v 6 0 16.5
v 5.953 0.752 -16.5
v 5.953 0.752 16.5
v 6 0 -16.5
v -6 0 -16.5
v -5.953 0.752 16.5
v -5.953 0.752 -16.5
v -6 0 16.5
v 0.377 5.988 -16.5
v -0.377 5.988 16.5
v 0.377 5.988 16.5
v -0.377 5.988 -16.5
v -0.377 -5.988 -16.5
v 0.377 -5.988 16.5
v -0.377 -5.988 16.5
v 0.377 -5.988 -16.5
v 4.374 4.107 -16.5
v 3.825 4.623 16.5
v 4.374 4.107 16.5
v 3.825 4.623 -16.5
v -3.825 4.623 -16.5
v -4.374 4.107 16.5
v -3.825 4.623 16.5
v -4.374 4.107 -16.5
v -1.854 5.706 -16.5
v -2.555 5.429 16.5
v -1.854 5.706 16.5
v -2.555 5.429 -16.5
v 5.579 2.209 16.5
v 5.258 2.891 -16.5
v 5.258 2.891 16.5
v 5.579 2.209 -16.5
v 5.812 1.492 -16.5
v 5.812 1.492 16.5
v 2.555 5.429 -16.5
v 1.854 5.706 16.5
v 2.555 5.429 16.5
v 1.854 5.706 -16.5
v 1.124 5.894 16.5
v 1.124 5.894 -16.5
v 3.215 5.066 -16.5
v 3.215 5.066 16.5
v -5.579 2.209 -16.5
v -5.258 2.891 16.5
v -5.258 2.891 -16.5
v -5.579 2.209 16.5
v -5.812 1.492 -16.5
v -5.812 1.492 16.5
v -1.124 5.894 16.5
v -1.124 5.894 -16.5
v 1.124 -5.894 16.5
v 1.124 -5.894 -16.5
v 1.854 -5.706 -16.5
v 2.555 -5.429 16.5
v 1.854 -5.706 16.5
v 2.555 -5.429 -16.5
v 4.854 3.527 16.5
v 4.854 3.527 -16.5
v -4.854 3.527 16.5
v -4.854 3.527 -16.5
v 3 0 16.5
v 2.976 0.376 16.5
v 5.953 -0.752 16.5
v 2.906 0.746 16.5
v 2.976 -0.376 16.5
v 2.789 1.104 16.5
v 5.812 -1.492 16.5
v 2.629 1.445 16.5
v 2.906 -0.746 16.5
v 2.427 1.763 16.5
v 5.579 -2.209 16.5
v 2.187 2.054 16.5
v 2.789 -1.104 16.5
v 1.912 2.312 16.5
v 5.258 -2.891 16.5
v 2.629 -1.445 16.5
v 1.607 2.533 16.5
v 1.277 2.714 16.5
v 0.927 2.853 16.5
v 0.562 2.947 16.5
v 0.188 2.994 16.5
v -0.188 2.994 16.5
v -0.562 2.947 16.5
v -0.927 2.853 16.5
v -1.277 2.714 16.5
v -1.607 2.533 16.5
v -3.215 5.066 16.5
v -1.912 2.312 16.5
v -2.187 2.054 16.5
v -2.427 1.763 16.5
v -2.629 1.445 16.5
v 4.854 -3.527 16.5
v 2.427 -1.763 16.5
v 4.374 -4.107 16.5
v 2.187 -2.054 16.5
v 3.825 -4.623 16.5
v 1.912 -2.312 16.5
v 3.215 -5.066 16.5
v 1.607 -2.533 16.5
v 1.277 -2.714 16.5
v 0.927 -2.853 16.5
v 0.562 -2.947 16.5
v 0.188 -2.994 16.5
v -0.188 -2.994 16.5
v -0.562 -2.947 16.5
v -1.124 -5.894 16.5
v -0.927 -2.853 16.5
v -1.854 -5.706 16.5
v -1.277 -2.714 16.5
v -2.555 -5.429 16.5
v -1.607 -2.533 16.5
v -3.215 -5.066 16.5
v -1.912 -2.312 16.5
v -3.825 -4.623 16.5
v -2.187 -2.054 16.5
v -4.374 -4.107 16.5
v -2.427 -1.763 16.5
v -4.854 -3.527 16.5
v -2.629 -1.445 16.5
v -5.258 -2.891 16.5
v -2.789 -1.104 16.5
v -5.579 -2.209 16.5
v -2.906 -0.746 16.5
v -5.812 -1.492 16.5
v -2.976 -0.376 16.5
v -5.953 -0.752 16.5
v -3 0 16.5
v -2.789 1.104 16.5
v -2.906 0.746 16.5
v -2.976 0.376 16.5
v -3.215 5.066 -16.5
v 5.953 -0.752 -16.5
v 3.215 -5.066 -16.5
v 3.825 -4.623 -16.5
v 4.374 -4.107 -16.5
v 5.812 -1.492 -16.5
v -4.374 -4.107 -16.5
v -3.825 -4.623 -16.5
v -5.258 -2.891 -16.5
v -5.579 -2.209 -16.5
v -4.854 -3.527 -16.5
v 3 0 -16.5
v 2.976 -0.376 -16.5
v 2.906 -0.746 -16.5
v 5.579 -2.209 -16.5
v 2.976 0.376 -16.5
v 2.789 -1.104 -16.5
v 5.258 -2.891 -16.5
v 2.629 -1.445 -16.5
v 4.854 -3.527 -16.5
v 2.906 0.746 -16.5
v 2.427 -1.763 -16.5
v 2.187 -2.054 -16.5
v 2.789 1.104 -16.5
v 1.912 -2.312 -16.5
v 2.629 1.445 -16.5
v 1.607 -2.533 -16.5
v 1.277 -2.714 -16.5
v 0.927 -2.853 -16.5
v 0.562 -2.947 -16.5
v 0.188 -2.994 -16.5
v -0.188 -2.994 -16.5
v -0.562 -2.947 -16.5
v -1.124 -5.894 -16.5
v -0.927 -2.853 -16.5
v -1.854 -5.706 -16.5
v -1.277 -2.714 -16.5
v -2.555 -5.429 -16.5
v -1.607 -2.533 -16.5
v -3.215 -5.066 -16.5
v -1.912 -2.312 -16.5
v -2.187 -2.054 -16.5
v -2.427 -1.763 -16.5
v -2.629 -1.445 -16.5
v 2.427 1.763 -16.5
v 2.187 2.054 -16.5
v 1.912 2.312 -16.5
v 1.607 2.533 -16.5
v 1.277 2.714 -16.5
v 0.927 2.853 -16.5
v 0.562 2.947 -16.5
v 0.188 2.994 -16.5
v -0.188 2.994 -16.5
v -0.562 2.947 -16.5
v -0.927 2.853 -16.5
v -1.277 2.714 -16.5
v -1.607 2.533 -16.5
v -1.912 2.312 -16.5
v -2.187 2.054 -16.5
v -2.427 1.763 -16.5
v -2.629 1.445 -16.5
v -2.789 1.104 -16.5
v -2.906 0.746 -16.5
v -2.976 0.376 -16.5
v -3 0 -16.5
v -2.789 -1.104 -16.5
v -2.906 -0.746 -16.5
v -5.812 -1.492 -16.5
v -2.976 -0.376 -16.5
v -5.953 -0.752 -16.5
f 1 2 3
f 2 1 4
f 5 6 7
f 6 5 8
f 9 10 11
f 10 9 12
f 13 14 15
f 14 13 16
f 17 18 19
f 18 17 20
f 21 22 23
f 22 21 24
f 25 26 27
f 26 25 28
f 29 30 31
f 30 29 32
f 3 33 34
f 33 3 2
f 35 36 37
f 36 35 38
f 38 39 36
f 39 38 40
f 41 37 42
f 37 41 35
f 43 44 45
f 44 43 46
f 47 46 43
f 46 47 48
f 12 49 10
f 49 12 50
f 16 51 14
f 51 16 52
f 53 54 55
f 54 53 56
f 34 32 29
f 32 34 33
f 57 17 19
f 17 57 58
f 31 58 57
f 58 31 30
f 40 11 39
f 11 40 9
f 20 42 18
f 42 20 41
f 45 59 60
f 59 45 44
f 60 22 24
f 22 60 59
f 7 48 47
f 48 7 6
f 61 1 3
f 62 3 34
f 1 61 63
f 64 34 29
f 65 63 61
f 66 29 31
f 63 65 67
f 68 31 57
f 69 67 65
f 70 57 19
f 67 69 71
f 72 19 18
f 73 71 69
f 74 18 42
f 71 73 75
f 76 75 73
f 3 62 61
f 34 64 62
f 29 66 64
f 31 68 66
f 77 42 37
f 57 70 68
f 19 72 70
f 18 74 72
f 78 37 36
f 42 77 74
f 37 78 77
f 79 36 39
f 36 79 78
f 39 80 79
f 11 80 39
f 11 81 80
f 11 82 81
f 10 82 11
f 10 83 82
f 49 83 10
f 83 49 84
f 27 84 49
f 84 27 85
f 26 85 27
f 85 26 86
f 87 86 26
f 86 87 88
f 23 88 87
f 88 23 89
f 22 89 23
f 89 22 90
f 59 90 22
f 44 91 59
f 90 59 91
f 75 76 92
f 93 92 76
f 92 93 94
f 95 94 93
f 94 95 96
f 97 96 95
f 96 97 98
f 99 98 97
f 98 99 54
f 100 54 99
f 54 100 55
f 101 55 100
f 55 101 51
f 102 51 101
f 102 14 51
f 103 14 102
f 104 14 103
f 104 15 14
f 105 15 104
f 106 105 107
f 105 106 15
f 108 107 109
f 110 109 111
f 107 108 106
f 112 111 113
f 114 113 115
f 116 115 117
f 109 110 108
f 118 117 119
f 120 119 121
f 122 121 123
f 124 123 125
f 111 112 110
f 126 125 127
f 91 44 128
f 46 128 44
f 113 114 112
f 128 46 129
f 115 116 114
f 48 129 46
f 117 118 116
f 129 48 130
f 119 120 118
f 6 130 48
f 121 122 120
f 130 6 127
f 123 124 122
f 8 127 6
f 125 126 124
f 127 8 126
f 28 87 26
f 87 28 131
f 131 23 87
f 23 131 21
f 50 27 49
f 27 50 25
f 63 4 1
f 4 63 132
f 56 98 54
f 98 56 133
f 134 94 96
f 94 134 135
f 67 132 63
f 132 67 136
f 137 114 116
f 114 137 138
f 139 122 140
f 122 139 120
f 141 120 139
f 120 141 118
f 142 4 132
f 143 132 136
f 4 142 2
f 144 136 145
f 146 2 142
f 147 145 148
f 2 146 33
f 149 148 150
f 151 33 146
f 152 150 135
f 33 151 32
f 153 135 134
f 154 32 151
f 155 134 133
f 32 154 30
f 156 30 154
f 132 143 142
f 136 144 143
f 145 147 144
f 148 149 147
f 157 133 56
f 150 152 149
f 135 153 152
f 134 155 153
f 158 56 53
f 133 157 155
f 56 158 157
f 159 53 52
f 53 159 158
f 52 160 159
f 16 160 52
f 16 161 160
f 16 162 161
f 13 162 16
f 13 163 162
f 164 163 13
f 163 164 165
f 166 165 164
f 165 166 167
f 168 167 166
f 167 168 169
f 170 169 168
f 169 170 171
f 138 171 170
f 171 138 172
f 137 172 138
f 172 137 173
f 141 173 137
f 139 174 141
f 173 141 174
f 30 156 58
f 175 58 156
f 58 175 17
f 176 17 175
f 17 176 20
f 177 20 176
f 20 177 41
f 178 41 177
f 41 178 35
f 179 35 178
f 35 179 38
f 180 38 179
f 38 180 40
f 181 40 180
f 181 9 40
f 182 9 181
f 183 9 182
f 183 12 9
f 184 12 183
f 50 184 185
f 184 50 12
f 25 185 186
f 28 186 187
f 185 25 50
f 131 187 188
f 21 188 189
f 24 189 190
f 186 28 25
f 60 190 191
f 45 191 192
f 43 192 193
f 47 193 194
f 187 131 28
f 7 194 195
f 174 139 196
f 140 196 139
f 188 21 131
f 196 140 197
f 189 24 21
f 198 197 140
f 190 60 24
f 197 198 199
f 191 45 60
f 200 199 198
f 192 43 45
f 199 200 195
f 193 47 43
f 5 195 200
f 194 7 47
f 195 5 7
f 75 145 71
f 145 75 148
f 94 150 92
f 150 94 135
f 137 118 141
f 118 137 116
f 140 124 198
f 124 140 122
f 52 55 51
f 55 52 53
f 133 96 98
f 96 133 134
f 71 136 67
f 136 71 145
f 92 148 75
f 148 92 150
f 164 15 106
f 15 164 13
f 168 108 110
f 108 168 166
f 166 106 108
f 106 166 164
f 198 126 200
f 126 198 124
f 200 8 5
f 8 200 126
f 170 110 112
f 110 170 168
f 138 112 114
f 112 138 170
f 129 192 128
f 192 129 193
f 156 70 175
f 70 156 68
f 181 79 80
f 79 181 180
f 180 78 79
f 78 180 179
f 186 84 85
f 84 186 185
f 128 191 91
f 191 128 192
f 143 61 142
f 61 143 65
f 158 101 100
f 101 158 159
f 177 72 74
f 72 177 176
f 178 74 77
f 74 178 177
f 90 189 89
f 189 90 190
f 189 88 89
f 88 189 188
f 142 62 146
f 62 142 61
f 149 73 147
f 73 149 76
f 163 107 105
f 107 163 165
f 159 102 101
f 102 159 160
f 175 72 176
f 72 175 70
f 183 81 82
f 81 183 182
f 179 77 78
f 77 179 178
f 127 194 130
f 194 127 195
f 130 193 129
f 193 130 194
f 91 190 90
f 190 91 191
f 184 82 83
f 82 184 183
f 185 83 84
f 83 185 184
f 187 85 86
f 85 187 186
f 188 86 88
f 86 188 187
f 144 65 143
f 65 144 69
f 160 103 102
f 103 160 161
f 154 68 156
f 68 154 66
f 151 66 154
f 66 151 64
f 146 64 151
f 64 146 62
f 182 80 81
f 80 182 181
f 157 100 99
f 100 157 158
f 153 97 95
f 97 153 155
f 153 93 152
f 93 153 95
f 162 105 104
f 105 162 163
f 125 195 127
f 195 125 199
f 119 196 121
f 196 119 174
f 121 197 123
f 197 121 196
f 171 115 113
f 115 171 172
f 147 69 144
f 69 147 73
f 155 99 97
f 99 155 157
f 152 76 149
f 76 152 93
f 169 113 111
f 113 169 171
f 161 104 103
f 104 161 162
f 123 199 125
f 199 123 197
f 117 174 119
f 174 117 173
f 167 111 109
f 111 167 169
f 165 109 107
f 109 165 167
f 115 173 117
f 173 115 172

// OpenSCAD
$fn = 50;


difference() {
	union() {
		translate(v = [0, 0, -16.5000000000]) {
			cylinder(h = 33, r = 6.0000000000);
		}
	}
	union() {
		translate(v = [0, 0, -100.0000000000]) {
			cylinder(h = 200, r = 3);
		}
	}
}
